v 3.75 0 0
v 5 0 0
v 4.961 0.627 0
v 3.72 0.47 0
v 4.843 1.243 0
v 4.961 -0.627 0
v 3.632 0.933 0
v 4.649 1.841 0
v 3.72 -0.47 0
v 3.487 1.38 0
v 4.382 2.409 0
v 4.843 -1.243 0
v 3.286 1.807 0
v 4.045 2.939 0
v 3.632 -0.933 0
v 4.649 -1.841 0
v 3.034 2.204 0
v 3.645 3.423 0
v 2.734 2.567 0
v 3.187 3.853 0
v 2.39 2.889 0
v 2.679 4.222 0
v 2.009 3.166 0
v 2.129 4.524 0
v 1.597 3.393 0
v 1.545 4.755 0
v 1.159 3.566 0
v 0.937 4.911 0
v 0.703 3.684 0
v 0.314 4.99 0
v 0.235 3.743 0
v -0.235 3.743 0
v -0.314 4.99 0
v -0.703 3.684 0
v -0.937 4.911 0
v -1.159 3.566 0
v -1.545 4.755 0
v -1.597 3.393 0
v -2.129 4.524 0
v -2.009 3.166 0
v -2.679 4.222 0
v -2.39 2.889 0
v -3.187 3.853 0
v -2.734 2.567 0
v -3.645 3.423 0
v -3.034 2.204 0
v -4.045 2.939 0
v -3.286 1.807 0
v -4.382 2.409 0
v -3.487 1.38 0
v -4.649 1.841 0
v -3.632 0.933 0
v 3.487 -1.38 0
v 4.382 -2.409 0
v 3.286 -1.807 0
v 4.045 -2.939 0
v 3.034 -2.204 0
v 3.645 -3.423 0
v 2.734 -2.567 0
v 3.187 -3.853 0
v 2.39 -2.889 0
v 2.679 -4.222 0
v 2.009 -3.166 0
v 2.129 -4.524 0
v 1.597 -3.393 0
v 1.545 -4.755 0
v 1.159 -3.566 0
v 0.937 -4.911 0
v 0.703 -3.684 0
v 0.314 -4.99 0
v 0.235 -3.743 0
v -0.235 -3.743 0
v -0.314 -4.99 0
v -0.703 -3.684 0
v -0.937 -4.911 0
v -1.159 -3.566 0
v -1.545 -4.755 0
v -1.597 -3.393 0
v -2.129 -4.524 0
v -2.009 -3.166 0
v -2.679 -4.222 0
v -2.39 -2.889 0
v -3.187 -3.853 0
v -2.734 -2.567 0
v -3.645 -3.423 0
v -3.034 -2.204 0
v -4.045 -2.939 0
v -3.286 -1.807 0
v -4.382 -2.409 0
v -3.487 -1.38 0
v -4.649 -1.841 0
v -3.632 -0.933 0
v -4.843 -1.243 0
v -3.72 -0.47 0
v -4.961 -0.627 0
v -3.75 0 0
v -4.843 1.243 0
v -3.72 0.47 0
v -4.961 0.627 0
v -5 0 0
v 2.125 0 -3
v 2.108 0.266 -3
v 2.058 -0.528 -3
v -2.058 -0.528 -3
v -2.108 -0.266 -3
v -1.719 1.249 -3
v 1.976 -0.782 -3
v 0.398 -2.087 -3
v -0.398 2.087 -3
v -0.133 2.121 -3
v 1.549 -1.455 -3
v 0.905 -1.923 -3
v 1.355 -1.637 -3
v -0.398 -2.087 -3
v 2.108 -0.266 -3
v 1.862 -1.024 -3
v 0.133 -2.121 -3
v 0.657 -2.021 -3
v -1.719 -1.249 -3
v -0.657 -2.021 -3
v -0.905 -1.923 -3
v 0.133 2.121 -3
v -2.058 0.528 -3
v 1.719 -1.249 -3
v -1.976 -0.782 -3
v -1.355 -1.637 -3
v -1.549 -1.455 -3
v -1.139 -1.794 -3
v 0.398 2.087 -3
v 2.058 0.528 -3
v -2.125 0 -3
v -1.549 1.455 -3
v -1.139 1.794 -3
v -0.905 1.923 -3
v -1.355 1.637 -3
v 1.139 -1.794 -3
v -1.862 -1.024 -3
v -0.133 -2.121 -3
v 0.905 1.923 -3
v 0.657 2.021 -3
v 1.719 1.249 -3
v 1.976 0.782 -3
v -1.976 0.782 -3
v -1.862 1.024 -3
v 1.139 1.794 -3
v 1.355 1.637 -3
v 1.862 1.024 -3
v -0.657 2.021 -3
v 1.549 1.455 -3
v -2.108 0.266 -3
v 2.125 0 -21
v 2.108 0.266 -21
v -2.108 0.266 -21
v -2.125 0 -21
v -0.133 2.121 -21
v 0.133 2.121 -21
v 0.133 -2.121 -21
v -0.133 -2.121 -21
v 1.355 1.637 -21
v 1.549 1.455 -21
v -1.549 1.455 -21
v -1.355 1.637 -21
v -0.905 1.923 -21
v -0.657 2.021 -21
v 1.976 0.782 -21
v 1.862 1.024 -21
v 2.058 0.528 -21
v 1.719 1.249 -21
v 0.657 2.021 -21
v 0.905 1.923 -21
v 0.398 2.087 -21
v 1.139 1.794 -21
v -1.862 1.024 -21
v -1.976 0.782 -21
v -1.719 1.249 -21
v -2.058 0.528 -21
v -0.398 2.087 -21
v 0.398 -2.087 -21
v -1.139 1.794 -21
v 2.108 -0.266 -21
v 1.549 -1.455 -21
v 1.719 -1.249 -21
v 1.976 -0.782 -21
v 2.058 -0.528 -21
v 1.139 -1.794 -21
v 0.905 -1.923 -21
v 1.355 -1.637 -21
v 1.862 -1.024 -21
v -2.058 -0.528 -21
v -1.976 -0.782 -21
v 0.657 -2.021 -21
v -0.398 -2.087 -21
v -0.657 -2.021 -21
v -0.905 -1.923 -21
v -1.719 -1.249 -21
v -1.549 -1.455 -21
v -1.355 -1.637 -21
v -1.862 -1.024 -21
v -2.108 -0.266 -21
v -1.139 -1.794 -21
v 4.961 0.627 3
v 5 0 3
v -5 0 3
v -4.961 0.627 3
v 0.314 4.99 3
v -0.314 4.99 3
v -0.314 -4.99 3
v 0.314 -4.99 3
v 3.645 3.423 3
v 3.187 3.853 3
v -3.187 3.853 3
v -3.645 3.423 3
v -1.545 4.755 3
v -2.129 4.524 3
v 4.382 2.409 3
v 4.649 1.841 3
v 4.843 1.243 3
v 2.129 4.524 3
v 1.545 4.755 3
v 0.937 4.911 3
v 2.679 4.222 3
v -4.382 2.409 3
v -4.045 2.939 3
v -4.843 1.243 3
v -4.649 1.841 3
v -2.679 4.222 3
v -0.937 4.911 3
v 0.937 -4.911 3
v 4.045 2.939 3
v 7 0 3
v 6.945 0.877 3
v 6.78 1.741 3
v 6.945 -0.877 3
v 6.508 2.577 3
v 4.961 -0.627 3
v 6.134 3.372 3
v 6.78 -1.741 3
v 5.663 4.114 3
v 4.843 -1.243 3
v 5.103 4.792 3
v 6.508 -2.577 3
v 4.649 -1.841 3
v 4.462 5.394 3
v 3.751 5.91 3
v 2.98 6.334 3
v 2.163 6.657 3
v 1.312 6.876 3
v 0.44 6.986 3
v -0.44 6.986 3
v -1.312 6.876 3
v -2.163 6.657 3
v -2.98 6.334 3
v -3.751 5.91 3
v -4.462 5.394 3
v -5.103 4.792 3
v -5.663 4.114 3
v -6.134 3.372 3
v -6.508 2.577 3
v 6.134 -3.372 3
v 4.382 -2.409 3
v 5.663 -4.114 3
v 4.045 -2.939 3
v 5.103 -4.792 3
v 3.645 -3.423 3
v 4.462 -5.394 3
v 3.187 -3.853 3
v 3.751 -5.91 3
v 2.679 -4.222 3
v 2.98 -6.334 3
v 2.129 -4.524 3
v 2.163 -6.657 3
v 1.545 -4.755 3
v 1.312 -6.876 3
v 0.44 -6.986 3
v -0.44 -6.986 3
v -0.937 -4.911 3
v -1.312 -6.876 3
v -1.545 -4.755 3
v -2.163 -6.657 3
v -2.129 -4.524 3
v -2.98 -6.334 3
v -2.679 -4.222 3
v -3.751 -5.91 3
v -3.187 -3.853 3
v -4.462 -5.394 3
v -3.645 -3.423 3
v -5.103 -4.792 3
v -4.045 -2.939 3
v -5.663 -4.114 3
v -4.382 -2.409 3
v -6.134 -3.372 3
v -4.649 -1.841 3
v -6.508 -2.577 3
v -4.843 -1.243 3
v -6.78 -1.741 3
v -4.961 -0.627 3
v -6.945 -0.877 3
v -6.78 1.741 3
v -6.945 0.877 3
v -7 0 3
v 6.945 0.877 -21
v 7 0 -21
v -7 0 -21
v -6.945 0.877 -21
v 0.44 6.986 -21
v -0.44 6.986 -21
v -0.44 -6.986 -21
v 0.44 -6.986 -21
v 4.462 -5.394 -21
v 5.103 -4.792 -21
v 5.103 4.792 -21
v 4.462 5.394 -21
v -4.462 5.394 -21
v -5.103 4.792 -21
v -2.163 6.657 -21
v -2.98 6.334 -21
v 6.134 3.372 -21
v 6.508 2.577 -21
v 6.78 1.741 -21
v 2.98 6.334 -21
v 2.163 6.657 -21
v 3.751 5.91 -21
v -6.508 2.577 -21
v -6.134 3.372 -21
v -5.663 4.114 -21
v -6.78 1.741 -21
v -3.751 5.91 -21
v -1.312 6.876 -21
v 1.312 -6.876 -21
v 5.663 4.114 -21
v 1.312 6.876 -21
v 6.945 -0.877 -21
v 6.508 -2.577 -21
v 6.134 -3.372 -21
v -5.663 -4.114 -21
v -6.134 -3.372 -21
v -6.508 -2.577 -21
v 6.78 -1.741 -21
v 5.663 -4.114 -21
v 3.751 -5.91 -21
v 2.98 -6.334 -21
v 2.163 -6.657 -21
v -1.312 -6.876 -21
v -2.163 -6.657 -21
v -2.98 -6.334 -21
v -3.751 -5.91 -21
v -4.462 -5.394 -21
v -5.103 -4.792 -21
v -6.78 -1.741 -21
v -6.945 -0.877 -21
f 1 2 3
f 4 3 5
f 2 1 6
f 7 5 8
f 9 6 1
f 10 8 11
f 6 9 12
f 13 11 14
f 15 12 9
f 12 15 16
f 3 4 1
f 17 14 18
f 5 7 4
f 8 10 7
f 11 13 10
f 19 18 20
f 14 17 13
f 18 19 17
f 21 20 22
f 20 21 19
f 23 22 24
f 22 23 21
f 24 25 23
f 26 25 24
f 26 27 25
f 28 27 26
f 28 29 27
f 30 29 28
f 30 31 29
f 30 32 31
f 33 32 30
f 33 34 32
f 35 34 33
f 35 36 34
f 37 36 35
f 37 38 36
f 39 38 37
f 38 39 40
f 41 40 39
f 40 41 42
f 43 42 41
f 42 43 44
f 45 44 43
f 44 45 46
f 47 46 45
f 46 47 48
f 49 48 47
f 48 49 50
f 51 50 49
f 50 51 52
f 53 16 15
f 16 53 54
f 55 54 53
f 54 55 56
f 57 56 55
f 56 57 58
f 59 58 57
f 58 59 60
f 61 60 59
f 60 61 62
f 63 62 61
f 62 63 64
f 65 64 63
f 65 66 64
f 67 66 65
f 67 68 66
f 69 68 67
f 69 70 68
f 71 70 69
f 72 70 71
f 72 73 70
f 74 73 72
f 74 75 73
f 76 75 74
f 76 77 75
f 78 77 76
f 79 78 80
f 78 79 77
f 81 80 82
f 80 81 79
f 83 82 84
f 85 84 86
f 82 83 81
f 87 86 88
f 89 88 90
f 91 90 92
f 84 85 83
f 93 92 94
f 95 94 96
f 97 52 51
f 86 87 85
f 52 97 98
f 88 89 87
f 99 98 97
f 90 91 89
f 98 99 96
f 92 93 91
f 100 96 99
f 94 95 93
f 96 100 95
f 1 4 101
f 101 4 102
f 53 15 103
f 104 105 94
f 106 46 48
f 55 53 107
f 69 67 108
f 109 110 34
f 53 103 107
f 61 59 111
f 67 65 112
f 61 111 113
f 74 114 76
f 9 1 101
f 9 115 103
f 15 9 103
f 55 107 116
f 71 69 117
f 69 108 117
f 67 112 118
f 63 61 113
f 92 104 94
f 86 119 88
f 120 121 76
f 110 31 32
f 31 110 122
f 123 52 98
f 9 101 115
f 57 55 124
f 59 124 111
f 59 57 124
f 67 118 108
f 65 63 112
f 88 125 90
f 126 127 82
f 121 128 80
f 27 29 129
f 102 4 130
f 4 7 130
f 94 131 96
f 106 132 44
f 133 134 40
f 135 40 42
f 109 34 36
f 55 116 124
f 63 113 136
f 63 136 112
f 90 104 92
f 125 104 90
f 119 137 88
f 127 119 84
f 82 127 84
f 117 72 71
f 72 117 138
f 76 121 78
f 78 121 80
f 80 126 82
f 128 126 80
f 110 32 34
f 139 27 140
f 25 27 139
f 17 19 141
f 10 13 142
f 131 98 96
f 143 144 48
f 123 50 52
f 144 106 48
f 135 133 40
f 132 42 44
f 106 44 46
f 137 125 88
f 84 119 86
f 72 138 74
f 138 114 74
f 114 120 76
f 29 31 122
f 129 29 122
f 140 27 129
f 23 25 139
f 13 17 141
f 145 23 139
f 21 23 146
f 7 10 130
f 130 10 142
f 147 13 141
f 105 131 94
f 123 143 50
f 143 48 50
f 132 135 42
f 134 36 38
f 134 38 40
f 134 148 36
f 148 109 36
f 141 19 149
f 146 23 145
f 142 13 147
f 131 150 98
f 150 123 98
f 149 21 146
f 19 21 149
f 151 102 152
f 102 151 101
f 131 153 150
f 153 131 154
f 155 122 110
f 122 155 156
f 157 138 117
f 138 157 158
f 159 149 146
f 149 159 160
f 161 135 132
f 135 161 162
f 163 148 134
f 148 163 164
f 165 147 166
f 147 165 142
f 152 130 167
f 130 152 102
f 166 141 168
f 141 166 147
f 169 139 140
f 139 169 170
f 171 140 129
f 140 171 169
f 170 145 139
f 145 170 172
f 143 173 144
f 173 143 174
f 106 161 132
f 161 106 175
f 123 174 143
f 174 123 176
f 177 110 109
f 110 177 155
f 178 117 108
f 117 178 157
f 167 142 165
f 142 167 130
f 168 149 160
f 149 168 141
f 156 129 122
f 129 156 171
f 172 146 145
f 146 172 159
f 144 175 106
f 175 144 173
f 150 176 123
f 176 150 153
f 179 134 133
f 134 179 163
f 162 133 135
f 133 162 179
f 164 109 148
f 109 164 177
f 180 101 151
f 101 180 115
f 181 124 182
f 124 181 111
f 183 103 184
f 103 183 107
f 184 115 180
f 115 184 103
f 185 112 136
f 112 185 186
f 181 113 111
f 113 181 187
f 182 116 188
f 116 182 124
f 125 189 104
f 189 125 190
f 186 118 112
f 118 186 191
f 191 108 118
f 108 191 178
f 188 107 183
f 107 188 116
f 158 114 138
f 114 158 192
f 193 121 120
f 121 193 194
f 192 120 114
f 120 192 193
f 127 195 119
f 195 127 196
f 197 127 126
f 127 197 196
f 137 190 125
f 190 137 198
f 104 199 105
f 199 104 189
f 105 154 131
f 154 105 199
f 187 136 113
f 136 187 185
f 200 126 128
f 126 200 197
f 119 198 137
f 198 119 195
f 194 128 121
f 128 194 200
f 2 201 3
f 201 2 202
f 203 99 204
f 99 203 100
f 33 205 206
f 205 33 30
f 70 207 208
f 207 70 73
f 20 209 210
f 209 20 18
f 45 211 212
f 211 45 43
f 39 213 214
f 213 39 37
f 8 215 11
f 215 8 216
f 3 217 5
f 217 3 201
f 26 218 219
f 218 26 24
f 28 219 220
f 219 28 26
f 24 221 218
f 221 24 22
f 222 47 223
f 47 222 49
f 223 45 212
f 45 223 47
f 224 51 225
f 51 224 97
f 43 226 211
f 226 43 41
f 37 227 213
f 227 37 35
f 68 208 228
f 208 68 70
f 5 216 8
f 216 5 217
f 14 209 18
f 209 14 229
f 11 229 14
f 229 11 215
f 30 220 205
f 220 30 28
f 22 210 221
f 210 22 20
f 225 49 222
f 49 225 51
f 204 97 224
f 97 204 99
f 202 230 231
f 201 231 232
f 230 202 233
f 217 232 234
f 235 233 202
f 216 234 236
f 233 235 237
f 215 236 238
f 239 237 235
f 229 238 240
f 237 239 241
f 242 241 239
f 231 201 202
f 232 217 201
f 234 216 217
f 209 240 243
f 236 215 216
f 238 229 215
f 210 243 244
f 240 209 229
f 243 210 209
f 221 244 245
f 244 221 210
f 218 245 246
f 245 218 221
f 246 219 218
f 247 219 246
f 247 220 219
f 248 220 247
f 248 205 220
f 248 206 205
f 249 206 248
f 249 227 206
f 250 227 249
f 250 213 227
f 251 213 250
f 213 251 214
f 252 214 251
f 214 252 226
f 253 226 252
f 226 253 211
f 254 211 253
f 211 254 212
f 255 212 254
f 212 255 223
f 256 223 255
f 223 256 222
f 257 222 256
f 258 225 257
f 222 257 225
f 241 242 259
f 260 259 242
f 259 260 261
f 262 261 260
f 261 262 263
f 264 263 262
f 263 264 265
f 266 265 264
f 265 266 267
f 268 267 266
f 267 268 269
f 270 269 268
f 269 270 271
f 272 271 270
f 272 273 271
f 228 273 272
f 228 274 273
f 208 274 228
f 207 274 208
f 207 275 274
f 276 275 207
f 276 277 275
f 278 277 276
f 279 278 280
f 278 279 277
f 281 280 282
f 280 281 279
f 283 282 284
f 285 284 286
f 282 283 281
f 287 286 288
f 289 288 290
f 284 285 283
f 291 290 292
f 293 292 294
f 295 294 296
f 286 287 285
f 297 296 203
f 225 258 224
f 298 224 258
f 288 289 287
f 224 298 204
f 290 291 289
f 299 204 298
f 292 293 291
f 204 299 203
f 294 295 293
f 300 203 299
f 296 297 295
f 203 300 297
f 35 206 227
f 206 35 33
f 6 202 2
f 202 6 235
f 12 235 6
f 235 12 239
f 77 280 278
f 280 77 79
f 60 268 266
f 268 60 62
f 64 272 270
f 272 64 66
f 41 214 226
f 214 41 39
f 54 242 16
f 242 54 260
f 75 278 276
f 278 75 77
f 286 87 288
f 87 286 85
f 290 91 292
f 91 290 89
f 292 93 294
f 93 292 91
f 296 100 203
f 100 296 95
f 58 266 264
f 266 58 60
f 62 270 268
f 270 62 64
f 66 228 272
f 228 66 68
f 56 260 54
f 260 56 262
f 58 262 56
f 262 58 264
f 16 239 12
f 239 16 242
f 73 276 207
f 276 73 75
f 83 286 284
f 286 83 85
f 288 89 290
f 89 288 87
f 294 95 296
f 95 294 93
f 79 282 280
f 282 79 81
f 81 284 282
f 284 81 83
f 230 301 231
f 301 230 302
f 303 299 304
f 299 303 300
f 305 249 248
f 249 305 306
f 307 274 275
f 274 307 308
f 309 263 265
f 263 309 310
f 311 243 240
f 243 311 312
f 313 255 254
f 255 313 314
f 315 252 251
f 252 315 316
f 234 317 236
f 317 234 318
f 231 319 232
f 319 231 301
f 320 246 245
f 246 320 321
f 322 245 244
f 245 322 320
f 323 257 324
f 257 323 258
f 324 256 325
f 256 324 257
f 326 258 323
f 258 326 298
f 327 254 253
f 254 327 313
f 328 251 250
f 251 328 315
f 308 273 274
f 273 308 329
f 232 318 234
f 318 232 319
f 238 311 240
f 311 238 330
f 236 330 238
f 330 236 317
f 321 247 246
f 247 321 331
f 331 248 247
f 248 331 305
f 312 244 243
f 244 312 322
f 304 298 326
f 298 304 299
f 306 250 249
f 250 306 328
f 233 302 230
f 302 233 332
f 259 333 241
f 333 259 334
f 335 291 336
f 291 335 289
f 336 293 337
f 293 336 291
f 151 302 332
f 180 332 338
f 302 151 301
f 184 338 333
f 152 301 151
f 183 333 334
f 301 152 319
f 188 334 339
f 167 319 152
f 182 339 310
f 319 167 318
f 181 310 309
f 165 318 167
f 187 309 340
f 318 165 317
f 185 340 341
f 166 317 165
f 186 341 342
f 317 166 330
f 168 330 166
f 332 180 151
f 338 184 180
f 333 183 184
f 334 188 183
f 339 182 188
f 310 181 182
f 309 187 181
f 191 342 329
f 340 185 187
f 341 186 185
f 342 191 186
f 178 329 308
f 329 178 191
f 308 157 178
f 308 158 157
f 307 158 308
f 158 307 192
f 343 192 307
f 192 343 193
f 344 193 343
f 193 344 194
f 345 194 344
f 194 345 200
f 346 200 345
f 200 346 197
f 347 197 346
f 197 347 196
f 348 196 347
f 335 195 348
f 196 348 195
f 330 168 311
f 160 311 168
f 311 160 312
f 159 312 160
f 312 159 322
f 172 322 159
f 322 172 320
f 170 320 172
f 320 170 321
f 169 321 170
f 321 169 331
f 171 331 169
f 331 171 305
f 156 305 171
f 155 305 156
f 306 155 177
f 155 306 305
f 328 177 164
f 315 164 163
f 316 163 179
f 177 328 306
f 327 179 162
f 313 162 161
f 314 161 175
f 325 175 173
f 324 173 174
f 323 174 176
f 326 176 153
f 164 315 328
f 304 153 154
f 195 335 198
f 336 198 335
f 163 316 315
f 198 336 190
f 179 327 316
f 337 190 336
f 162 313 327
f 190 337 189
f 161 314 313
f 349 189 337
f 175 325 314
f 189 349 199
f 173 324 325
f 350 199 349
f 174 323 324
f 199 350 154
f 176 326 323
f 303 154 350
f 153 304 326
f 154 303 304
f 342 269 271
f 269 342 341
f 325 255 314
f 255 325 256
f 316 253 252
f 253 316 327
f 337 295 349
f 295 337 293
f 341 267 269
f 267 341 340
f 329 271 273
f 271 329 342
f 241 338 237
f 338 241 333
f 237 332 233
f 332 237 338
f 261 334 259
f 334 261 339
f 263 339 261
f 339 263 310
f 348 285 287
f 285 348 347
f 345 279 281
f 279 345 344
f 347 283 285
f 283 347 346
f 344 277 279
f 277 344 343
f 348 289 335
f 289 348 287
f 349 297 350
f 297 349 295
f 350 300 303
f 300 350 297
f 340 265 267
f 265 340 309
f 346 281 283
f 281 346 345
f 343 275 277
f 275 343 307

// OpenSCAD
$fn = 50;

difference() {
	union() {
		translate(v = [0, 0, -21.0]) {
			cylinder(h = 24, r = 7.0);
		}
	}
	union() {
		translate(v = [0, 0, 0]) {
			rotate(a = [0, 0, 0]) {
				difference() {
					union() {
						translate(v = [0, 0, -24.0]) {
							cylinder(h = 24, r = 2.0);
						}
						translate(v = [0, 0, -3]) {
							cylinder(h = 3, r1 = 2.125, r2 = 3.75);
						}
						translate(v = [0, 0, -24.0]) {
							cylinder(h = 24, r = 2.125);
						}
						translate(v = [0, 0, -24.0]) {
							cylinder(h = 24, r = 2.0);
						}
					}
					union();
				}
			}
		}
		#cylinder(h = 3, r = 5.0);
	}
}
